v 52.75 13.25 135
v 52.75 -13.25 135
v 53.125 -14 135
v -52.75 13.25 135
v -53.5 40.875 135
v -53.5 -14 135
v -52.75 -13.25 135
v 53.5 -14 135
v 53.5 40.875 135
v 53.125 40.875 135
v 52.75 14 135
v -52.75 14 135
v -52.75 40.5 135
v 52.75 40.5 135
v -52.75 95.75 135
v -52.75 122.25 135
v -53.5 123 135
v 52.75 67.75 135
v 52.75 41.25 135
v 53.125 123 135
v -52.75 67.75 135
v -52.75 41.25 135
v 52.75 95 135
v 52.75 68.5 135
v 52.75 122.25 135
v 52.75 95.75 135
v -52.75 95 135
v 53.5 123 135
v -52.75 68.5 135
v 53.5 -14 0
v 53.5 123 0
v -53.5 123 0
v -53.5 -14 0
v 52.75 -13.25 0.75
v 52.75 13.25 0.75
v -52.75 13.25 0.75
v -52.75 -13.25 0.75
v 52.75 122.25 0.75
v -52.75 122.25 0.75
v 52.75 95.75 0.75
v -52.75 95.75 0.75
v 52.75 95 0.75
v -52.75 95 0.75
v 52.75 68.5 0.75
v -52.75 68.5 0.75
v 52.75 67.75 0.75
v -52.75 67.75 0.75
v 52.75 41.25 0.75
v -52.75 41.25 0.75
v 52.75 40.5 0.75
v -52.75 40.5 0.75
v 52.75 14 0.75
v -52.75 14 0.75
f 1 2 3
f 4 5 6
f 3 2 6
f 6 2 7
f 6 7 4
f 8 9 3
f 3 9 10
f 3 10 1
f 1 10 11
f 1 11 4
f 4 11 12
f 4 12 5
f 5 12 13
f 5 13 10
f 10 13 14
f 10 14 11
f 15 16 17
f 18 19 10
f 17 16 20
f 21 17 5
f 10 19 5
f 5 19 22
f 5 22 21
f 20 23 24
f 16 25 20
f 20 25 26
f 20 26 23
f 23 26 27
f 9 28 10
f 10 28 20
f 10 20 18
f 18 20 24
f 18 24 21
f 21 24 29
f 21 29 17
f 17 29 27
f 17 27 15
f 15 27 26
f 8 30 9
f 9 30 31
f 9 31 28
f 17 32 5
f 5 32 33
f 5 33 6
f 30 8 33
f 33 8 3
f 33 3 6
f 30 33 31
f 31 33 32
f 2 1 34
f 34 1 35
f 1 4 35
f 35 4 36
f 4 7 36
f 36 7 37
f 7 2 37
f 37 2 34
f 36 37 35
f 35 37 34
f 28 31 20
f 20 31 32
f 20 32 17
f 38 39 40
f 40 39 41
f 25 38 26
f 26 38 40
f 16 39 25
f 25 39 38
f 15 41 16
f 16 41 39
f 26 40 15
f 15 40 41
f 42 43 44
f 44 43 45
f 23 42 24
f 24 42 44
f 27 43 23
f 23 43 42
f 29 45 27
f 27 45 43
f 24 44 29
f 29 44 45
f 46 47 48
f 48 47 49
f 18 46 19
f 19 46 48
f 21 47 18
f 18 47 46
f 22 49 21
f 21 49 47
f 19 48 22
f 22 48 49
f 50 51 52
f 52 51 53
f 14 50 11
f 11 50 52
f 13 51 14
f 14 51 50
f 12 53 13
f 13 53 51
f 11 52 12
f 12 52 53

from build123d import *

# Parameters (mm, degrees)
ESBO_O1_W                = 107
ESBO_O1_H                = 28
RESSALTO_EXTRUS_O1_DEPTH = 135
CASCA1_T                 = -0.75
PADR_O_LINEAR1_OUTLINE_W = 107
PADR_O_LINEAR1_OUTLINE_H = 109
PADR_O_LINEAR1_DEPTH     = 135
ESBO_O2_W                = 105.5
ESBO_O2_H                = 26.5
CORTE_EXTRUS_O1_DEPTH    = 134.25


# Read off the part's stored shape, not the designer's step: Padrão linear1
with BuildPart() as part:
    # Esboço1 → Ressalto-extrusão1 (new body)
    with BuildSketch(Plane.XY):
        Rectangle(ESBO_O1_W, ESBO_O1_H)
    extrude(amount=RESSALTO_EXTRUS_O1_DEPTH)

    # Casca1
    casca1_openings = [part.faces().sort_by_distance(p)[0] for p in [
        (0, 0, 135),
    ]]
    offset(amount=CASCA1_T, openings=casca1_openings, kind=Kind.INTERSECTION)

    # Padrão linear1 outline → Padrão linear1 (add)
    with BuildSketch(Plane.XY):
        with Locations((0, 68.5)):
            Rectangle(PADR_O_LINEAR1_OUTLINE_W, PADR_O_LINEAR1_OUTLINE_H)
    extrude(amount=PADR_O_LINEAR1_DEPTH)

    # Esboço2 → Corte-extrusão1 (cut)
    with BuildSketch(Plane.XY.offset(135)):
        Rectangle(ESBO_O2_W, ESBO_O2_H)
        with Locations((0, 27.25)):
            Rectangle(ESBO_O2_W, ESBO_O2_H)
        with Locations((0, 54.5)):
            Rectangle(ESBO_O2_W, ESBO_O2_H)
        with Locations((0, 81.75)):
            Rectangle(ESBO_O2_W, ESBO_O2_H)
        with Locations((0, 109)):
            Rectangle(ESBO_O2_W, ESBO_O2_H)
    extrude(amount=-CORTE_EXTRUS_O1_DEPTH, mode=Mode.SUBTRACT)


solid = part.part
